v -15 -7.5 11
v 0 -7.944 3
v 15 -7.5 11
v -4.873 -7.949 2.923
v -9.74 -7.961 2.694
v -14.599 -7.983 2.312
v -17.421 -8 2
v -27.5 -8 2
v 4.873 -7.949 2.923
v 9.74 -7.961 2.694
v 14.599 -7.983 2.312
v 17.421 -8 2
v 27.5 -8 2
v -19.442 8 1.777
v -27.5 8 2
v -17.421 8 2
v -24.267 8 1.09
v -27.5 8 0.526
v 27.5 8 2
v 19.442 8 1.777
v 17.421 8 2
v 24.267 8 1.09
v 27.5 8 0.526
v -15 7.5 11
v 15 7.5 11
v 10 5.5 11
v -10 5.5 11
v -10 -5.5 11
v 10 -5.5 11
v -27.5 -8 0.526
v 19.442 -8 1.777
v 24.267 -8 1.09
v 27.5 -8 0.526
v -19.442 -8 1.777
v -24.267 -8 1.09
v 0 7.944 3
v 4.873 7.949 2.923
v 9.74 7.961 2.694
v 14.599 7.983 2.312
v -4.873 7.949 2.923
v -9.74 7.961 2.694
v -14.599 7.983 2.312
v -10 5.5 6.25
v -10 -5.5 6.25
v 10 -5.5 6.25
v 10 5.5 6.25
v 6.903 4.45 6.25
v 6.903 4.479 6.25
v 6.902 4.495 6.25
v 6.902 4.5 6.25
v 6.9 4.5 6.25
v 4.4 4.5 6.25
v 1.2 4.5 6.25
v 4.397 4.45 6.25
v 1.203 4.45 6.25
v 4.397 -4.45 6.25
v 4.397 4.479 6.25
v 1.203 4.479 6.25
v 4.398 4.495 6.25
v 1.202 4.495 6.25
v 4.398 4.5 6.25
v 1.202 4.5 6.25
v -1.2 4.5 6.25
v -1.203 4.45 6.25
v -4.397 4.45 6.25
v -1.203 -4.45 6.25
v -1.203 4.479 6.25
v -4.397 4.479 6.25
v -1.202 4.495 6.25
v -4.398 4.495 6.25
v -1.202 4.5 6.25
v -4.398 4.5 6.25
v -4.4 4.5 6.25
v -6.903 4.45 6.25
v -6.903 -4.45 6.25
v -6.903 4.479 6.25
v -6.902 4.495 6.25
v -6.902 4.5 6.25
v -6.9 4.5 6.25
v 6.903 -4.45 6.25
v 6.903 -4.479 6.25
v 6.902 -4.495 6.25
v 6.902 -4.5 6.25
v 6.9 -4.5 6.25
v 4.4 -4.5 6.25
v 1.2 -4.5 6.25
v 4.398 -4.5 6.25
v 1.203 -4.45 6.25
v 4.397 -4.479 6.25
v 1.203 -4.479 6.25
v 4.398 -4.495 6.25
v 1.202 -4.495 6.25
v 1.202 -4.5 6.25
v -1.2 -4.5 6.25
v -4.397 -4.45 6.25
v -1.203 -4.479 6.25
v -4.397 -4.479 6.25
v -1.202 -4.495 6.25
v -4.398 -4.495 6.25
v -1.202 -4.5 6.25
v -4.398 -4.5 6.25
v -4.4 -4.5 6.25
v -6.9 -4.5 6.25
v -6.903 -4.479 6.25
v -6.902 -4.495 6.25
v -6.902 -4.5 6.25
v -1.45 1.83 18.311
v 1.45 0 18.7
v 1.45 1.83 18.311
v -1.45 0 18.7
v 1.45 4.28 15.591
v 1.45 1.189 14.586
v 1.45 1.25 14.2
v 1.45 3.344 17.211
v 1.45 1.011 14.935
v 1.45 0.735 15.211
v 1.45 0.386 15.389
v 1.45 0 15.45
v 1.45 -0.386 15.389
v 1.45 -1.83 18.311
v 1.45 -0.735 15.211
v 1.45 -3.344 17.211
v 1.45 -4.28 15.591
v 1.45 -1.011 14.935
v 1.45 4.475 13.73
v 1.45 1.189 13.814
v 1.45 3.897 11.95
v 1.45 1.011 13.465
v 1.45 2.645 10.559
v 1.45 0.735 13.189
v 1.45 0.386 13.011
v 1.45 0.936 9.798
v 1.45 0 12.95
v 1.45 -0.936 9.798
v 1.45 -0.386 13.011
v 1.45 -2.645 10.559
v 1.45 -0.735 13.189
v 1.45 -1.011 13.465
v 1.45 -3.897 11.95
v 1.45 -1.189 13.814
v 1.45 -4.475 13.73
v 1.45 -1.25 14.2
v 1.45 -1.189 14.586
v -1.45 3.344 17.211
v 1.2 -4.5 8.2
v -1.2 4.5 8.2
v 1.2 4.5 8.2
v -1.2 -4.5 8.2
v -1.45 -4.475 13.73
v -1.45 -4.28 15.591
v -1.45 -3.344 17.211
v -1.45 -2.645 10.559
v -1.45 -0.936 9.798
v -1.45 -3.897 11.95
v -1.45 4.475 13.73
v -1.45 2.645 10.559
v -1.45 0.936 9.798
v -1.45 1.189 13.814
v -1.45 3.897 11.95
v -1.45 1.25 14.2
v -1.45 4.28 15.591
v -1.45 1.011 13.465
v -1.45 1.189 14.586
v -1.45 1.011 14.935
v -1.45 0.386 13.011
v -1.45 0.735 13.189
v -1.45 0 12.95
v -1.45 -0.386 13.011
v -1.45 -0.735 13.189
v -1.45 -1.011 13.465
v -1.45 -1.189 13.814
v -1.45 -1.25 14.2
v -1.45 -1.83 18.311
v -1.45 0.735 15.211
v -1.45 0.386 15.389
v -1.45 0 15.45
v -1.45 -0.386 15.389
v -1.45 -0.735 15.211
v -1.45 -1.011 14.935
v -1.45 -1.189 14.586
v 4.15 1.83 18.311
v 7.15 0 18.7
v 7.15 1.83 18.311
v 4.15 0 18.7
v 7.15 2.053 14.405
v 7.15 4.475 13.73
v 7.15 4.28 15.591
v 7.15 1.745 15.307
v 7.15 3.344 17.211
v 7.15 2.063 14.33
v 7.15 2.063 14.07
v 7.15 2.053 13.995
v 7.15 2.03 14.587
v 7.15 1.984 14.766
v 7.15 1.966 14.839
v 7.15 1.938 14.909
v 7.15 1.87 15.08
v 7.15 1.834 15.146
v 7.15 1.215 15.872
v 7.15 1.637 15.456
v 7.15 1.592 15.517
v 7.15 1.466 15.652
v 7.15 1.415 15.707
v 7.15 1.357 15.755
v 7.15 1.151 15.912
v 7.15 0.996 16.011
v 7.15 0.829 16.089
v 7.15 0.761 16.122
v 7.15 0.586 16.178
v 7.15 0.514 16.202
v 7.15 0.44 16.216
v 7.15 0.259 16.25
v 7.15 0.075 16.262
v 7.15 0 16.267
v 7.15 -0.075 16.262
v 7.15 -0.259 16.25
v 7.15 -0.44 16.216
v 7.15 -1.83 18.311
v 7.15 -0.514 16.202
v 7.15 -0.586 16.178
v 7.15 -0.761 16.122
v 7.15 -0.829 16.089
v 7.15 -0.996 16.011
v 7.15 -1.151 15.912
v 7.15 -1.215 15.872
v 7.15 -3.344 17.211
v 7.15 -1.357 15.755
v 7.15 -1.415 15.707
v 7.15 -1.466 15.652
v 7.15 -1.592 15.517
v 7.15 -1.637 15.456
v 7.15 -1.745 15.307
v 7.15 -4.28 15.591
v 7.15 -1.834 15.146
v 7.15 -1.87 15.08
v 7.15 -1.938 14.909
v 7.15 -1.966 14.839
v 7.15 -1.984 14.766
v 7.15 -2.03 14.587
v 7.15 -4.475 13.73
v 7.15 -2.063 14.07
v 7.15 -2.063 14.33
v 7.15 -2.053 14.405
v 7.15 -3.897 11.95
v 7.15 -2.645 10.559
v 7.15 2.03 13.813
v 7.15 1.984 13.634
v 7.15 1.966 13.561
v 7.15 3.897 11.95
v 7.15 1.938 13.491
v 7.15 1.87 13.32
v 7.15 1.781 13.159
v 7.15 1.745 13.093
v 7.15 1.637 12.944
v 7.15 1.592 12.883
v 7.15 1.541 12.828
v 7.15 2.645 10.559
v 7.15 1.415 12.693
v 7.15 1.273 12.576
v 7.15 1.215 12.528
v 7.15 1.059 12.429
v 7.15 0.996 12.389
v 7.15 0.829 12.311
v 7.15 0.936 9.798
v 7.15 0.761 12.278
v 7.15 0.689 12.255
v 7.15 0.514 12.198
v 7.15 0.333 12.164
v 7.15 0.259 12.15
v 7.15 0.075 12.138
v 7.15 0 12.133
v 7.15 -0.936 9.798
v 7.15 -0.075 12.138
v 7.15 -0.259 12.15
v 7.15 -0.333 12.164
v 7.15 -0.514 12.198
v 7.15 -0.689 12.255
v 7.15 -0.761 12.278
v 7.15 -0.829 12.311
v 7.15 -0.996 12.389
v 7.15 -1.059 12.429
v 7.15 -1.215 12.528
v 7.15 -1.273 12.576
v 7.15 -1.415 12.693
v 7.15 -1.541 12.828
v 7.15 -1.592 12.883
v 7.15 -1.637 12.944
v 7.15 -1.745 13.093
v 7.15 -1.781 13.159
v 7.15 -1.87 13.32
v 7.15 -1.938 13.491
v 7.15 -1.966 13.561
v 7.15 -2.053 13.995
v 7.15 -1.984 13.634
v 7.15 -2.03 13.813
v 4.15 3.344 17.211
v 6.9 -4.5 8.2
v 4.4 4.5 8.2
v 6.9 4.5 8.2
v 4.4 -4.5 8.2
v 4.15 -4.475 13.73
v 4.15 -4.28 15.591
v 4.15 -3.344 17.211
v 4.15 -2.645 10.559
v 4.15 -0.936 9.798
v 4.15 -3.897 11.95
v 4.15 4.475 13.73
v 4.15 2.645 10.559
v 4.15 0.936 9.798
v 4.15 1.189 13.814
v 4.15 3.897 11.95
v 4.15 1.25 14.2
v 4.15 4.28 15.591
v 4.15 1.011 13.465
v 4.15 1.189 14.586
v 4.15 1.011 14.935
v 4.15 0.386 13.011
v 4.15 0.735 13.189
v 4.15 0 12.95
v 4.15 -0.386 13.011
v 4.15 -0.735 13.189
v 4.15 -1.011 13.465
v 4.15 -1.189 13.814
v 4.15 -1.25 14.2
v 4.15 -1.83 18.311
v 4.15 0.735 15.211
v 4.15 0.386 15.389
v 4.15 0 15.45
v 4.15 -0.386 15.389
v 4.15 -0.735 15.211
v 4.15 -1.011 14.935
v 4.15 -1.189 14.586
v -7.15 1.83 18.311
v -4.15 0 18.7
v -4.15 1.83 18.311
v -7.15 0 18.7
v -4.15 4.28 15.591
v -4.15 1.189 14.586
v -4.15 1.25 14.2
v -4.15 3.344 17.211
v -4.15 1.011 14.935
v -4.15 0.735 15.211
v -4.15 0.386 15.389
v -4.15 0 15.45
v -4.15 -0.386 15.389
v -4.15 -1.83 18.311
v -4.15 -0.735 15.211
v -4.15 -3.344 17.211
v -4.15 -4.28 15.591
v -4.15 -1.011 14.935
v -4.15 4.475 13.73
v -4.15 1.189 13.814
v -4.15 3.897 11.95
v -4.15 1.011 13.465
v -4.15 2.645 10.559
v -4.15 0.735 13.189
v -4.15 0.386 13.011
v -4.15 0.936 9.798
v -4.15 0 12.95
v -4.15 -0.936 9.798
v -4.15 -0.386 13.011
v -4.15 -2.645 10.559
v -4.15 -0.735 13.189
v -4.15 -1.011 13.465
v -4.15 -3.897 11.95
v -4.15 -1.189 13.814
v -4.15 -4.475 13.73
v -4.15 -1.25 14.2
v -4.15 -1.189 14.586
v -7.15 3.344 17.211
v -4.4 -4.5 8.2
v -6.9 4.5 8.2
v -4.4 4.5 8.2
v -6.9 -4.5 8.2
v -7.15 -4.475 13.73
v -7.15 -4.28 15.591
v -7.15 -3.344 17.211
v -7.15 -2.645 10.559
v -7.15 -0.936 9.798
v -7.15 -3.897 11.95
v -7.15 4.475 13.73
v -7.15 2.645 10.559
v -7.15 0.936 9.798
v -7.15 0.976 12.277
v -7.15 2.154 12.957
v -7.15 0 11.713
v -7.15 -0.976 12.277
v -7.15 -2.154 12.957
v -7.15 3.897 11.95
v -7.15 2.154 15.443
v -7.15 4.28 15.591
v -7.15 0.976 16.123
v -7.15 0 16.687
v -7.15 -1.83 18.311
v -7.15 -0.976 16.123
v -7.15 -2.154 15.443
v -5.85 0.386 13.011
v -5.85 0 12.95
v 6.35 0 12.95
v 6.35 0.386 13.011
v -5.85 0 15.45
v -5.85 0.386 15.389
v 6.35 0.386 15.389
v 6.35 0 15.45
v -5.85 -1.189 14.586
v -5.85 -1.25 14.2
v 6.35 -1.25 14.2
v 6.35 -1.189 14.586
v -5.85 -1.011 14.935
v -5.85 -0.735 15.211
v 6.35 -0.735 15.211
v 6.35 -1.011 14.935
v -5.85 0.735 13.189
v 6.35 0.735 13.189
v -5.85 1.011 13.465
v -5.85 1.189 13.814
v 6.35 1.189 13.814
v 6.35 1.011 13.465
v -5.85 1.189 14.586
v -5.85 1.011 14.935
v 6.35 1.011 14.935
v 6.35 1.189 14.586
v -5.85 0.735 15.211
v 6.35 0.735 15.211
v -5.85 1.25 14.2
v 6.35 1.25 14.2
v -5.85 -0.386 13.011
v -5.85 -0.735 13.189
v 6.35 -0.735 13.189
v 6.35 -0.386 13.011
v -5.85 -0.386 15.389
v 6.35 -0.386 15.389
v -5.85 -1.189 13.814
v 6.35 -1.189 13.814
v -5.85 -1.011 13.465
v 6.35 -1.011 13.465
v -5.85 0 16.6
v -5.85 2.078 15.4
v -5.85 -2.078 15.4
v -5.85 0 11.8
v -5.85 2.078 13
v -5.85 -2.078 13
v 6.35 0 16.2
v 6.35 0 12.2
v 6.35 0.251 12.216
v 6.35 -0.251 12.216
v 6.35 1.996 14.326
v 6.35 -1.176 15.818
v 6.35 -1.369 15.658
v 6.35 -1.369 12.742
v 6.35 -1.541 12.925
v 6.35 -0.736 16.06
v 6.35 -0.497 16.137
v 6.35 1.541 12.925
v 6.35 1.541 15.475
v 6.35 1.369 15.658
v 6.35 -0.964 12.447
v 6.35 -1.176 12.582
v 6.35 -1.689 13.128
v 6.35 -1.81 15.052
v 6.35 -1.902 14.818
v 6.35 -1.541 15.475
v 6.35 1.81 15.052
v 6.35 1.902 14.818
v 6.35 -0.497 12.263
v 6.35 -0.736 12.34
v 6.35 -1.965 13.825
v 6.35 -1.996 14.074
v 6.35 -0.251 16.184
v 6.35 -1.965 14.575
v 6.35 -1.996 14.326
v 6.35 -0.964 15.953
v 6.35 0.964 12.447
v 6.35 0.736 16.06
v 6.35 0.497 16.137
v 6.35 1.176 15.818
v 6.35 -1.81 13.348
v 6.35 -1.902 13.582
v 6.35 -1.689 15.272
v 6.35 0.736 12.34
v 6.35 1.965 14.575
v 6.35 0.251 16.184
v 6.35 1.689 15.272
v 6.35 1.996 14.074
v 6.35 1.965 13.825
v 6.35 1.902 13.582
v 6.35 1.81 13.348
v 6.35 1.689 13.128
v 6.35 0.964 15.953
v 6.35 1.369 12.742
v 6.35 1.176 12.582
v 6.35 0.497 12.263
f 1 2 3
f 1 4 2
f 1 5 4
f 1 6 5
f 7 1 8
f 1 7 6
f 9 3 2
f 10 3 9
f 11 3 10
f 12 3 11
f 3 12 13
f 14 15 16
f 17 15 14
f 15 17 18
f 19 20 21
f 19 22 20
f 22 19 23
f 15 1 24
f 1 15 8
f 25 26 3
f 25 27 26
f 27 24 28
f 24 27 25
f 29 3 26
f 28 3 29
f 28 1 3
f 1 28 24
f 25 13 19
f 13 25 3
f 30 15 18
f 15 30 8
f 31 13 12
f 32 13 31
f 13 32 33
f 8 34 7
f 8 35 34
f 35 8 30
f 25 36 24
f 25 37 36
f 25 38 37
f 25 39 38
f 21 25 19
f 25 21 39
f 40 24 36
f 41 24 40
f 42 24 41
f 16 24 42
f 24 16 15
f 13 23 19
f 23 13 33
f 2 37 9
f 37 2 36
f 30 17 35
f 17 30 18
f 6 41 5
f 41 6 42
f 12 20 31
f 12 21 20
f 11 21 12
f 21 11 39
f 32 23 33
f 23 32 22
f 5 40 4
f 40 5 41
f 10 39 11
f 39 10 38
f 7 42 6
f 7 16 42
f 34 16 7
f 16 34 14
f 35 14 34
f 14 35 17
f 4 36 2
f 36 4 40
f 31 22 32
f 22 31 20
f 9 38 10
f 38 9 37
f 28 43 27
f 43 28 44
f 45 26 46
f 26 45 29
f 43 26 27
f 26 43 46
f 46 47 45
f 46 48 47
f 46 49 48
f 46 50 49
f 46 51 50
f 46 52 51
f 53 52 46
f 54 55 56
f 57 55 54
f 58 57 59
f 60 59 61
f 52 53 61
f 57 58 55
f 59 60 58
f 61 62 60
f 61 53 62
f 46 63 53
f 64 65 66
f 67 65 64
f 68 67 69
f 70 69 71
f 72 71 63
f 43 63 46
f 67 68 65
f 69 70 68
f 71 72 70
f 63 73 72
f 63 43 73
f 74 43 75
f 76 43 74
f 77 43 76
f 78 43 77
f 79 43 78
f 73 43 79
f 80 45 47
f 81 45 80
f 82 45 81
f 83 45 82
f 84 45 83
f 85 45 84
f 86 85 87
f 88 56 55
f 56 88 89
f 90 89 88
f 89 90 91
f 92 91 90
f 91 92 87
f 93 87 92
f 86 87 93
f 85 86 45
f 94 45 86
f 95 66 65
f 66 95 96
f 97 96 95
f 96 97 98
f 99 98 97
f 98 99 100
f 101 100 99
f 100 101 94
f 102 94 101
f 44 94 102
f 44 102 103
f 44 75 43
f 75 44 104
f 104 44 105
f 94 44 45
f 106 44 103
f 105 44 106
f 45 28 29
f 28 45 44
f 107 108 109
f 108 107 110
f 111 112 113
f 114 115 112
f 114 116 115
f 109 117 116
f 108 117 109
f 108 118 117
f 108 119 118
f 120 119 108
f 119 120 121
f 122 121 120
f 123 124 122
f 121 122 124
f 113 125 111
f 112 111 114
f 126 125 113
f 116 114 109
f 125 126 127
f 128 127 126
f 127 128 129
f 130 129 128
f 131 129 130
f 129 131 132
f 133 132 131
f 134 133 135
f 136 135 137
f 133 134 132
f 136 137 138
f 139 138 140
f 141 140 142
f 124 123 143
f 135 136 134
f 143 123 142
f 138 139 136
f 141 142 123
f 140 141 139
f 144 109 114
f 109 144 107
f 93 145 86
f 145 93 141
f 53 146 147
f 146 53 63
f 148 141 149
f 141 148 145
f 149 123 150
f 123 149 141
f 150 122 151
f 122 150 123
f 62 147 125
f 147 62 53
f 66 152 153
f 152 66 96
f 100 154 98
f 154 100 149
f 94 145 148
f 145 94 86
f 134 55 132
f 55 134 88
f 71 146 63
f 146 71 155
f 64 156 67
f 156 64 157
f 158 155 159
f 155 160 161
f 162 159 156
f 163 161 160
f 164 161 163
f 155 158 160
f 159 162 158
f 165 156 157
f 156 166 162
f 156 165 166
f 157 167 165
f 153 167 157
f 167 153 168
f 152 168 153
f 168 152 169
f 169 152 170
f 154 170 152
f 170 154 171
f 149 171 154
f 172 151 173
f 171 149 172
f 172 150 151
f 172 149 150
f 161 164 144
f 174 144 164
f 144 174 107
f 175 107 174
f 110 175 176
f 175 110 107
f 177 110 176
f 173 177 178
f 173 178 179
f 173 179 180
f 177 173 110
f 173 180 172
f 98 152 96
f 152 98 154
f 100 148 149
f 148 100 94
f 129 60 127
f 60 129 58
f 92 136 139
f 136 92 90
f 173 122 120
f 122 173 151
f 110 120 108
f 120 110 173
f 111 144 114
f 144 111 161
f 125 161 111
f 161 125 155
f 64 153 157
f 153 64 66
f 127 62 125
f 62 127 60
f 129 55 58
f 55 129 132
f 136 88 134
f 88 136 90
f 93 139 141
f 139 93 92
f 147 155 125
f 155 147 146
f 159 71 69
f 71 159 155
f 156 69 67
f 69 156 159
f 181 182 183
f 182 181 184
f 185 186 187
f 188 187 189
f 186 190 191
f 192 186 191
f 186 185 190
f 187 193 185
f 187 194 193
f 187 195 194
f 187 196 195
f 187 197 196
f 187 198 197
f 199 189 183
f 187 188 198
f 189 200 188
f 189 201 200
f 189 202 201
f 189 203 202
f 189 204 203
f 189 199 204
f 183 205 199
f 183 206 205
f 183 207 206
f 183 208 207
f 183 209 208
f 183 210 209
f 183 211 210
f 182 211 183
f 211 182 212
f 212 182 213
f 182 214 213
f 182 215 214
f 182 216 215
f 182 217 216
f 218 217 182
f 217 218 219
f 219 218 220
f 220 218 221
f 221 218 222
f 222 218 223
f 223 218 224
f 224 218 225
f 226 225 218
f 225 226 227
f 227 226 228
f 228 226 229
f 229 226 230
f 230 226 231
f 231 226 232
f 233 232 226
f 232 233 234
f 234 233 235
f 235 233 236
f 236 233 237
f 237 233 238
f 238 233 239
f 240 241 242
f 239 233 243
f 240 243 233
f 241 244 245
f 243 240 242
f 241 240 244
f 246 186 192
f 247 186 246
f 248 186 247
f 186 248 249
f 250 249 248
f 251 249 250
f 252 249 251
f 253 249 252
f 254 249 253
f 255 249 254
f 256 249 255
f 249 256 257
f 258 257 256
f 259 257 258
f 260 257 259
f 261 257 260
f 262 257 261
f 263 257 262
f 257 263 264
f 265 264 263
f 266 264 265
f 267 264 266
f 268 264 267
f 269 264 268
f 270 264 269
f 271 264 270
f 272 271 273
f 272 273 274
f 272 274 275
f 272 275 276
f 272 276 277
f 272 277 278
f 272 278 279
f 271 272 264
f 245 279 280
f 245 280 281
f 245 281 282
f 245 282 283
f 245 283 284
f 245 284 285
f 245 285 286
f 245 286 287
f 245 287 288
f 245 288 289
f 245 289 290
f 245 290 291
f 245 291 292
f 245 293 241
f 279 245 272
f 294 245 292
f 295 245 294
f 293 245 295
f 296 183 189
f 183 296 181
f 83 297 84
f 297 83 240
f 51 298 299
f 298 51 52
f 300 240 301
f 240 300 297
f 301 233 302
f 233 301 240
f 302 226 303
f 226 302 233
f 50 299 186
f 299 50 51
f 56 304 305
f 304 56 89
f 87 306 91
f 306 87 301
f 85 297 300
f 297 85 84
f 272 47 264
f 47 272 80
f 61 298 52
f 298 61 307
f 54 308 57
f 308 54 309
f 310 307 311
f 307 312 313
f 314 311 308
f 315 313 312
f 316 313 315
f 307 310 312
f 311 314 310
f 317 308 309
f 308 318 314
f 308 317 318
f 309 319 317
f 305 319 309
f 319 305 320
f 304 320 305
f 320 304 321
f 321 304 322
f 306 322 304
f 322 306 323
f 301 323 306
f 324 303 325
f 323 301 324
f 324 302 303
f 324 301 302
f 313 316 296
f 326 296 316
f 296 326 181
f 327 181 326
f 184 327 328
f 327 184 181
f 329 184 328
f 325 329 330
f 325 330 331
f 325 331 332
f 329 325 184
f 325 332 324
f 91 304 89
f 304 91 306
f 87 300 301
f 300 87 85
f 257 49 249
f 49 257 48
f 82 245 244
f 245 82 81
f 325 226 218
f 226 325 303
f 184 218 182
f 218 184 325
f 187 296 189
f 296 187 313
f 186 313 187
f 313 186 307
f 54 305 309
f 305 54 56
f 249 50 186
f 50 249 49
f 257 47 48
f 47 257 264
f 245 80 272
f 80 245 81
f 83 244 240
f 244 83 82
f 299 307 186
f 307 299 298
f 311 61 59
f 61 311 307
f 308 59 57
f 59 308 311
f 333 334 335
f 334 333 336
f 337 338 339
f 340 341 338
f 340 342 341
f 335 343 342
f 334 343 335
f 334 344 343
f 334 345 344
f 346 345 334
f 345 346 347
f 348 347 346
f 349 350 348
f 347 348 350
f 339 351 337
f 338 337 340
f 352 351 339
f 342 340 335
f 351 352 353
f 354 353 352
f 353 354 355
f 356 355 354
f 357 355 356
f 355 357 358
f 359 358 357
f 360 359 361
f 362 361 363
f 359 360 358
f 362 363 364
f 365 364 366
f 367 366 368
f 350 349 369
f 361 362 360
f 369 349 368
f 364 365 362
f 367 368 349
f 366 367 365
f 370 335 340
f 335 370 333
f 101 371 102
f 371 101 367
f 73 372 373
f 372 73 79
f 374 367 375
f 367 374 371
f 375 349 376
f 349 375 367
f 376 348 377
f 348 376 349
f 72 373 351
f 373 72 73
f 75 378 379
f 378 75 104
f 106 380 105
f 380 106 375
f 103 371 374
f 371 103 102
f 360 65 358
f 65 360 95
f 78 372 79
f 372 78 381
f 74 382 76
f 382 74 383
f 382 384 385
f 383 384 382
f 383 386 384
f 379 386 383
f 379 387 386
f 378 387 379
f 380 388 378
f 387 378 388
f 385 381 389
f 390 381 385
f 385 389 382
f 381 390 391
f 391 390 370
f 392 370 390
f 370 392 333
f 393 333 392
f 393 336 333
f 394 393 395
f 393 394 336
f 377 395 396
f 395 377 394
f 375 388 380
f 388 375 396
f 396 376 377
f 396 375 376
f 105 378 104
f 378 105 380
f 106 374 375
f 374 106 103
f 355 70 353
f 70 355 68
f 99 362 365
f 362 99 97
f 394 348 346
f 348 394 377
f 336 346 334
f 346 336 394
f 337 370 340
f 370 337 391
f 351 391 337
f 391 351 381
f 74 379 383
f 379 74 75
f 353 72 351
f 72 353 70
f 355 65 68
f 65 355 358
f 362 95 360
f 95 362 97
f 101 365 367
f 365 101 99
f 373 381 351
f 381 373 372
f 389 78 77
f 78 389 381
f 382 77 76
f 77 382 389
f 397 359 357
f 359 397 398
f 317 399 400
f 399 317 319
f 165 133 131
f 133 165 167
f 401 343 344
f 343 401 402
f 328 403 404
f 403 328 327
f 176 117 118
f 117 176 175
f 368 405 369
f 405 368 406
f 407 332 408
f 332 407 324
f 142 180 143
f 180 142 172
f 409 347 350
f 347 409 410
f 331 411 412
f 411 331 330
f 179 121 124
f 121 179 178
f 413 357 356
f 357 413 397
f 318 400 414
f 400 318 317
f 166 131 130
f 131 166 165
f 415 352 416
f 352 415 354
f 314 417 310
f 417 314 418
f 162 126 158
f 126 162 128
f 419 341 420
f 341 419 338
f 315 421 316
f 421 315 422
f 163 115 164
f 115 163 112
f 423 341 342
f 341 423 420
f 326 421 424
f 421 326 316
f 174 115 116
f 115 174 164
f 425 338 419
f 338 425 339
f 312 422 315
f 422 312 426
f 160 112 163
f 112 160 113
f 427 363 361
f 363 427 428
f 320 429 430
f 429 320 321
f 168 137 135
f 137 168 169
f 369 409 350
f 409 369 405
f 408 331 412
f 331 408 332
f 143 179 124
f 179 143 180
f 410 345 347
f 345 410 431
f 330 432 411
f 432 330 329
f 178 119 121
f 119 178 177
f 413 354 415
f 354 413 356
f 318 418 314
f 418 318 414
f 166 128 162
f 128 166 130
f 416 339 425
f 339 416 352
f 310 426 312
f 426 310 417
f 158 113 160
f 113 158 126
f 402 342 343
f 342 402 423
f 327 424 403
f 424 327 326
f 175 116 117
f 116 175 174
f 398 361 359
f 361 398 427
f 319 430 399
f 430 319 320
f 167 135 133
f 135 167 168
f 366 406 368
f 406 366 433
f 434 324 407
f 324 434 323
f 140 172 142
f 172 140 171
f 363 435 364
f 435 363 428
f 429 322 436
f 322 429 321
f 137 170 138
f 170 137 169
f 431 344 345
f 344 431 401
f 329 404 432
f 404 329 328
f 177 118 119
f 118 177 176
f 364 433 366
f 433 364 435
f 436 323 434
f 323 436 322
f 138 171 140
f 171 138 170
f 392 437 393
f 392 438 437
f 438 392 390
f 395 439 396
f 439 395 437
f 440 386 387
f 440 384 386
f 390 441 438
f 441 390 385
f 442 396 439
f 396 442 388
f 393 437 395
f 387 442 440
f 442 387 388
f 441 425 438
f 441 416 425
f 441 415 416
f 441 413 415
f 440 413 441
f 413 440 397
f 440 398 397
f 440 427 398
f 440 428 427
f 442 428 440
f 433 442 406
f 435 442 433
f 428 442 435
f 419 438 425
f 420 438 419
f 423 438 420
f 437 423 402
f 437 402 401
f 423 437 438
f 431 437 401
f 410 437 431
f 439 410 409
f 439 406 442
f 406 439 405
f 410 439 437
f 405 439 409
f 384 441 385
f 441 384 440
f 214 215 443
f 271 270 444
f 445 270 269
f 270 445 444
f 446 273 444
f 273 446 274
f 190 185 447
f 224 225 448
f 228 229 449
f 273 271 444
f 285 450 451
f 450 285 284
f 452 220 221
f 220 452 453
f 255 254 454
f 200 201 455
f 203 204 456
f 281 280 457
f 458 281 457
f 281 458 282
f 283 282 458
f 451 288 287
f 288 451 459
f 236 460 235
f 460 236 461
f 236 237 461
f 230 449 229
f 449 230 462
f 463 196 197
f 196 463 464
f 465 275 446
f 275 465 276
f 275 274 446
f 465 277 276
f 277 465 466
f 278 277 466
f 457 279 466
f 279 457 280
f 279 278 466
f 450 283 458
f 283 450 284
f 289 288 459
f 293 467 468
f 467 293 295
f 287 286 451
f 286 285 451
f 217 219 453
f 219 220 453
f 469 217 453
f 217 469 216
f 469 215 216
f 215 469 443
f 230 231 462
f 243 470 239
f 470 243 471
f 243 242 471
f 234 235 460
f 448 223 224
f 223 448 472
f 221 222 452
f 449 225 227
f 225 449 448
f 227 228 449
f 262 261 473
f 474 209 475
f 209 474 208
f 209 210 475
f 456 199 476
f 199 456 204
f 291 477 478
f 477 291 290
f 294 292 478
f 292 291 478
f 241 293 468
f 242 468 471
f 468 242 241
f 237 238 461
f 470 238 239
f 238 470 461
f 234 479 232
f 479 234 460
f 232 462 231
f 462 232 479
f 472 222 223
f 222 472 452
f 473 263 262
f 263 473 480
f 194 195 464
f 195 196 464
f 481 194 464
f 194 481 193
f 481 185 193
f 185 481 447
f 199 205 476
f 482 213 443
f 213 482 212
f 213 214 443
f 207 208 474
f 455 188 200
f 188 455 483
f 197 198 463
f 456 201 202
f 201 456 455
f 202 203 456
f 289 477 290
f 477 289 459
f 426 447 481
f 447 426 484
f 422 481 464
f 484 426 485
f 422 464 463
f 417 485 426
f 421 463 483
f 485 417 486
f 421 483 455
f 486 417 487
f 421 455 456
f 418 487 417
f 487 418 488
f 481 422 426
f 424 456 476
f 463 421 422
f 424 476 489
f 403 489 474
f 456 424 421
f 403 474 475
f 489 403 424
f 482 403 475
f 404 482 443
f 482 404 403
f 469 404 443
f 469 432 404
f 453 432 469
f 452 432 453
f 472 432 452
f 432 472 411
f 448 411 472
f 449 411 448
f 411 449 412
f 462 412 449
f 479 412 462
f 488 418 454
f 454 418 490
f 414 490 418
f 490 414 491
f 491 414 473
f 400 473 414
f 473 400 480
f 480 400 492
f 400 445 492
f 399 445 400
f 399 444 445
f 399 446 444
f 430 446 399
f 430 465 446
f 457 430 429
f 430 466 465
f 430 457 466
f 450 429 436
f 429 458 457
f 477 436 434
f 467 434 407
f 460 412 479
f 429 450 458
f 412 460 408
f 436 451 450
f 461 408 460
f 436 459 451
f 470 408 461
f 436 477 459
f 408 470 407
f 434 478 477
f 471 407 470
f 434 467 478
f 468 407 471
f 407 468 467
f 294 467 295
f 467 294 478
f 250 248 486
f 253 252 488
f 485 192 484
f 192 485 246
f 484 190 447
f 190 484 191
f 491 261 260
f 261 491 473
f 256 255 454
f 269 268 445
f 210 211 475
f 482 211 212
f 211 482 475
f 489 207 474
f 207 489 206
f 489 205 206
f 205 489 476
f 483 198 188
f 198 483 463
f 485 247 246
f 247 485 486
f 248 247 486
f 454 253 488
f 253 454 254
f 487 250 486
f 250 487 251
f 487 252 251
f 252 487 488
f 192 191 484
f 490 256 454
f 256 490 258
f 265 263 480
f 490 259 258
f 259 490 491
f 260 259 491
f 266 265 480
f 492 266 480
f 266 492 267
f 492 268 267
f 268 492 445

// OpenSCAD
module body() {
difference() { // middle seat hole
difference() { // buttom surface
hull() {
translate([0, 0, 10])cube([30, 15, 2], true);
translate([0, 0, 1])cube([55, 16, 2], true);
}

// steering wheel
r = 155.125;
translate([0, 0, -r+3]) rotate([90, 0, 0])cylinder(20, r, r, true, $fn=200);
//translate([0, 0, -92.9808]) rotate([90, 0, 0])cylinder(20, 97.4808, 97.4808, true, $fn=200);
}

// middle seat hole
translate([0, 0, 5+6.25])cube([20, 11, 10], true);
}
}



module ear(thick)

translate([0, 0, 6.2]) rotate([0, -90, 0])
hull() {
translate([8, 0, 0])cylinder(thick, 4.5, 4.5, true);
translate([1, 0, 0])cube([2, 9, thick-0.5],true);
}


module screws () {
// screw_hole
translate([0, 0, 6.2+8])
rotate([0, 90, 0])
cylinder(100, 2.5/2, 2.5/2, true, $fn=20);

// nut
translate([-(4.3/2+3/2+2.7-0.5), 0, 6.2+8])
rotate([0, -90, 0])
cylinder(3, 4.8/2, 5.2/2, $fn=6);

// head
translate([(4.3/2+3/2+2.7), 0, 6.2+8])
rotate([0, 90, 0])
cylinder(3, 4/2, 4.5/2, $fn=50);
}

difference() {
union() {
body();
// middle ear
ear(2.9);
translate([2.9/2+3/2+2.7, 0, 0])ear(3);
translate([-(2.9/2+3/2+2.7), 0, 0])ear(3);
}
screws();
}
